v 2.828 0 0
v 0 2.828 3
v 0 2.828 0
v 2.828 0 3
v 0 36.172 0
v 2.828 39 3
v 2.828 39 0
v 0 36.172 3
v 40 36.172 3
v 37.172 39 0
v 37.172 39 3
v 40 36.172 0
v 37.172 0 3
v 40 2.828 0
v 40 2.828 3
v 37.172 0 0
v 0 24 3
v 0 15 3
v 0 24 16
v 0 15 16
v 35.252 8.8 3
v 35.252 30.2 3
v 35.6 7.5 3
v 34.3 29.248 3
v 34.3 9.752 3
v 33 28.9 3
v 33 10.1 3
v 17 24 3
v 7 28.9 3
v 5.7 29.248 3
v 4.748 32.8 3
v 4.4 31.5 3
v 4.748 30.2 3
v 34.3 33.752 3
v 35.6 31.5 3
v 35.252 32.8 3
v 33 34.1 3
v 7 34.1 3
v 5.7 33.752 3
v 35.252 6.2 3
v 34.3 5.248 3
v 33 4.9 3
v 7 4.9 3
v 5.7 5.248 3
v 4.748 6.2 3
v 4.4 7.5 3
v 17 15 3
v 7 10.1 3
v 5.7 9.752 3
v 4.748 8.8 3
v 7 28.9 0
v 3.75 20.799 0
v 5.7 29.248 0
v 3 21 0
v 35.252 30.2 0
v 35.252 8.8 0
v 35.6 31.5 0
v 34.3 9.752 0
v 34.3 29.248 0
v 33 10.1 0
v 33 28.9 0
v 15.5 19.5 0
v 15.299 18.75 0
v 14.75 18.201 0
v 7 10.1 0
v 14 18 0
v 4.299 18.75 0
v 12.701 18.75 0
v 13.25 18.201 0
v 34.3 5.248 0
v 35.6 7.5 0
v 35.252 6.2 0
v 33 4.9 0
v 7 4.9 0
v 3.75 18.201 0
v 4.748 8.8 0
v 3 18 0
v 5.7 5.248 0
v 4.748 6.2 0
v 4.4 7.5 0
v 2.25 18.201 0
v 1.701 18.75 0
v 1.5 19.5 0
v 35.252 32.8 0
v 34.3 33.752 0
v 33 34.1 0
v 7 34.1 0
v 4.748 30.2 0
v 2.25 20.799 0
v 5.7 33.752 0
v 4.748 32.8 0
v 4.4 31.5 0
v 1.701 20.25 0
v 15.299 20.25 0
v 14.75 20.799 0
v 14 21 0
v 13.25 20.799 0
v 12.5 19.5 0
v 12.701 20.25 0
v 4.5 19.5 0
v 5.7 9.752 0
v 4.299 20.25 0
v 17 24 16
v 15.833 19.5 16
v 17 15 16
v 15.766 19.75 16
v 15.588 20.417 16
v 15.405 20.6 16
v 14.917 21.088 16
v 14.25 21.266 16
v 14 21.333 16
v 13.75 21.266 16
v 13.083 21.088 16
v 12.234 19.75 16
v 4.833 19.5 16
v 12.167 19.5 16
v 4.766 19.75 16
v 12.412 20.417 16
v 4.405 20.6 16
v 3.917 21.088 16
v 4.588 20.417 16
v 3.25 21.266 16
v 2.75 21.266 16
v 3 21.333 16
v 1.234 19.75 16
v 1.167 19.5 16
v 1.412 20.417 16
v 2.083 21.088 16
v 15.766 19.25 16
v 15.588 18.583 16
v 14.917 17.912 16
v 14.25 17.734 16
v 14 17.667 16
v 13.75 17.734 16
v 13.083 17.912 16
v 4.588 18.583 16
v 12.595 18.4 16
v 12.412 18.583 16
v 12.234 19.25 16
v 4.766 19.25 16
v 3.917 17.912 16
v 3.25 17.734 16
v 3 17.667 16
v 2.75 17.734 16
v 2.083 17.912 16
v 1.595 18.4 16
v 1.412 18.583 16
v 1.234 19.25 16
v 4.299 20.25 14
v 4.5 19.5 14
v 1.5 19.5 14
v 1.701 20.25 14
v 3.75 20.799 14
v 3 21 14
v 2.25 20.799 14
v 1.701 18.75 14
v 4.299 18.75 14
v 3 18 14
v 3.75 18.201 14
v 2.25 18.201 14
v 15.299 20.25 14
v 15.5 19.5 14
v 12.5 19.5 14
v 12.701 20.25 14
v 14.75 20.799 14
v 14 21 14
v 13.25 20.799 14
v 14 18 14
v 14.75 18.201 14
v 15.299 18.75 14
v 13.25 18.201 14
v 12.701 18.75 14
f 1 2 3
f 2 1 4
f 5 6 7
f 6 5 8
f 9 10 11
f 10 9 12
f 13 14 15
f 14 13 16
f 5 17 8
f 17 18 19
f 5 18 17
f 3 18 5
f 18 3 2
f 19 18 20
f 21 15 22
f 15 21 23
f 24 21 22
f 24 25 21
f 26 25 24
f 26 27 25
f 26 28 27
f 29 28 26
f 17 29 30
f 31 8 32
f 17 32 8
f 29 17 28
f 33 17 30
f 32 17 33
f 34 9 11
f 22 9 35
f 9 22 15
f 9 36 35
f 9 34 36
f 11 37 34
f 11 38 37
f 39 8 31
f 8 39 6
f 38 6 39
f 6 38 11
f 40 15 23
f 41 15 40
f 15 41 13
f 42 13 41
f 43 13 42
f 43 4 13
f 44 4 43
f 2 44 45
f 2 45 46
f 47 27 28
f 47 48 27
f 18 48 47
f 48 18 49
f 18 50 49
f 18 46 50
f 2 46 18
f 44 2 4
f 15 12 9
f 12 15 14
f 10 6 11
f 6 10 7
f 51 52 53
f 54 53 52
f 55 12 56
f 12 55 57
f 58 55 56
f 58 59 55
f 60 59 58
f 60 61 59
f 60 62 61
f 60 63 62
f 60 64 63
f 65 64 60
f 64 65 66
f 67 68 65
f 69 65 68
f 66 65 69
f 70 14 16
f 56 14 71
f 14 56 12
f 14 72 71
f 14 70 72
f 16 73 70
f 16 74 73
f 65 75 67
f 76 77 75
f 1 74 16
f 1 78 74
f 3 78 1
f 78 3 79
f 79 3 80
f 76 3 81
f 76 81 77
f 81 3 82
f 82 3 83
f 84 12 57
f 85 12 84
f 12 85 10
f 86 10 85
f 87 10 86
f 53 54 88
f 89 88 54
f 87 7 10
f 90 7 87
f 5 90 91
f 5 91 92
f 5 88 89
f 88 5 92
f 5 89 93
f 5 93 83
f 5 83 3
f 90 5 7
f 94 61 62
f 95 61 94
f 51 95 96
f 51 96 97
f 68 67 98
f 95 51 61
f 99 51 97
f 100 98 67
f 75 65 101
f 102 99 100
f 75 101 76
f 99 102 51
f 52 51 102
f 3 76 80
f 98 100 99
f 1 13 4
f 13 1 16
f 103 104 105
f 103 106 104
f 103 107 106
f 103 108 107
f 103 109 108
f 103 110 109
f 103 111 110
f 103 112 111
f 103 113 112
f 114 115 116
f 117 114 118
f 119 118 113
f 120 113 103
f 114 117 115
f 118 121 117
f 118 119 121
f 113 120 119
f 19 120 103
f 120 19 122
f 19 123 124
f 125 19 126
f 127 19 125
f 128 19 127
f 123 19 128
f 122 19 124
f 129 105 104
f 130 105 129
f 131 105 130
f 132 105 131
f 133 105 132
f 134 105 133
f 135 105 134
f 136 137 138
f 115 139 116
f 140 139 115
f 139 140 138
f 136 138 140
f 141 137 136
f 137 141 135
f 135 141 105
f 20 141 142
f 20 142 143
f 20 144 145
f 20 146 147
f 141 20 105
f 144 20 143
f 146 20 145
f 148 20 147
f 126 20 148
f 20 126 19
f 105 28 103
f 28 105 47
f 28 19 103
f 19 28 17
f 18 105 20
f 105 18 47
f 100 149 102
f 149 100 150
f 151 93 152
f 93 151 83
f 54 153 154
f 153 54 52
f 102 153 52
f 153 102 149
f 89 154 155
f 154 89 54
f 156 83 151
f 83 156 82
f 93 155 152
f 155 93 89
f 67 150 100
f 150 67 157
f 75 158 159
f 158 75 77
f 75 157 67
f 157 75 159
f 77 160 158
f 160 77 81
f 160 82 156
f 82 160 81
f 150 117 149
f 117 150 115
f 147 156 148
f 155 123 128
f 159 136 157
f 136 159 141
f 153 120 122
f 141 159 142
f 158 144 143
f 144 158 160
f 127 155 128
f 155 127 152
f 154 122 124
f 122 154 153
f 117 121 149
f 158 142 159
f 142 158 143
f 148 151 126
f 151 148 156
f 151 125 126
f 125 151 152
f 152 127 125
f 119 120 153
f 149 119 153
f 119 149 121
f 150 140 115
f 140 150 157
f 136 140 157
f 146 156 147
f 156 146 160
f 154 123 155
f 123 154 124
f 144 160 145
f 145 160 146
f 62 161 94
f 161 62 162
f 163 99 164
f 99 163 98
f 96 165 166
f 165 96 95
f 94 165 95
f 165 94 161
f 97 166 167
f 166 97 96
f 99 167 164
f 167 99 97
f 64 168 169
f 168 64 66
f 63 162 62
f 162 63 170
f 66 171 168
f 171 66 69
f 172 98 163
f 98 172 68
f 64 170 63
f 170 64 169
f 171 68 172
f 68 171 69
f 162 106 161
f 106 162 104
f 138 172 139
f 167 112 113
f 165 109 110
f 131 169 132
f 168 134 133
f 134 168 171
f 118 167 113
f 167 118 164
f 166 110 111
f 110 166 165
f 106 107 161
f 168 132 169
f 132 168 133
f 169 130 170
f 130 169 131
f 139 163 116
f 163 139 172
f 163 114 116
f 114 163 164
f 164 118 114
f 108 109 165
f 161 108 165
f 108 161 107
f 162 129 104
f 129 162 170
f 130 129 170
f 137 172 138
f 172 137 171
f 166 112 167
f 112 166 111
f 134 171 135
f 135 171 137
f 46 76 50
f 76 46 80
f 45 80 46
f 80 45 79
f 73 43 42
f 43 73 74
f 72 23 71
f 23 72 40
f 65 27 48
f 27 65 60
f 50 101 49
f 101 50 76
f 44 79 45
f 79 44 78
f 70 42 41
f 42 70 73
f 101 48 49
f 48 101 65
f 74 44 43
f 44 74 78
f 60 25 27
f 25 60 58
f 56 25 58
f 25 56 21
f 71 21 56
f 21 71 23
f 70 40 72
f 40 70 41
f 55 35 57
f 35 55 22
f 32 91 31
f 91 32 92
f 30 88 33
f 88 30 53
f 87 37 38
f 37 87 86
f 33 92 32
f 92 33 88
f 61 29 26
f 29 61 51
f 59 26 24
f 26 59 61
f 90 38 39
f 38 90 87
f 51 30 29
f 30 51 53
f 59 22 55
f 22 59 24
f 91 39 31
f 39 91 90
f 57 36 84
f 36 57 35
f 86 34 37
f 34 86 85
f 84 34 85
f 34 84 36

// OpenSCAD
// file: Cubo.scad
// -----------------
// module cubo
// GPL v2.0
// yvoz.lg@gmail.com
// -----------------


// exemples ----

cubo([10,10,5], [1,2,3,4,5,6,7,8,9,10,11,12], 1.5);

translate([15, 0, 0]){
	difference(){
		cubo([10,20,5], [2,3], 3);
		translate([5,10,-1]) cylinder(r=2, h=7, $fn=12);
	}
}

translate([-15, 0, 0]){
	difference(){
		cube([10,20,15]);
		translate([3,3,3]) cubo([10,20,50], [1,5], 3);
	}
}

// ------------

module cubo(dim, cro, a){

	diago = sqrt(pow(a,2)+pow(a,2));
	difference(){
		cube(dim);
		
		for(i=cro){
			//x
			if(i==1){
				translate([-1, 0, -diago/2])
				rotate([45, 0, 0])
				cube([dim.x+2, a, a]);
			}
			if(i==2){
				translate([-1, 0, dim.z-diago/2])
				rotate([45, 0, 0])
				cube([dim.x+2, a, a]);
			}
			if(i==3){
				translate([-1, dim.y, dim.z-diago/2])
				rotate([45, 0, 0])
				cube([dim.x+2, a, a]);
			}
			if(i==4){
				translate([-1, dim.y, -diago/2])
				rotate([45, 0, 0])
				cube([dim.x+2, a, a]);
			}
			//y
			if(i==5){
				translate([-diago/2, -1, 0])
				rotate([0, 45, 0])
				cube([a, dim.y+2, a]);
			}
			if(i==6){
				translate([dim.x-diago/2, -1, 0])
				rotate([0, 45, 0])
				cube([a, dim.y+2, a]);
			}
			if(i==7){
				translate([dim.x-diago/2, -1, dim.z])
				rotate([0, 45, 0])
				cube([a, dim.y+2, a]);
			}
			if(i==8){
				translate([-diago/2, -1, dim.z])
				rotate([0, 45, 0])
				cube([a, dim.y+2, a]);
			}
			//z
			if(i==9){
				translate([0, -diago/2, -1])
				rotate([0, 0, 45])
				cube([a, a, dim.z+2]);
			}
			if(i==10){
				translate([0, dim.y-diago/2, -1])
				rotate([0, 0, 45])
				cube([a, a, dim.z+2]);
			}
			if(i==11){
				translate([dim.x, dim.y-diago/2, -1])
				rotate([0, 0, 45])
				cube([a, a, dim.z+2]);
			}
			if(i==12){
				translate([dim.x, -diago/2, -1])
				rotate([0, 0, 45])
				cube([a, a, dim.z+2]);
			}
		}
	}
}
// main file
// Support_EndY.scad
// Tous droits réservés www.mon-fablab.fr - 2017
// Licence GPLv3 - usage NON COMMERCIAL uniquement
// Contributeurs : X. HINAULT, Y. LE GAL

$fn = 12;

pro = 20; // largeur du profil alu
lend = 17; // largeur base plot
proy = 15;

lz = 16; // 15-4; // decalage z // 16-4

ep = 3; // epaisseur

esptr = 11; // espace trous end stop

use<Cubo.scad>;
    
    difference(){
        union(){
            cubo([pro*2,proy+ep+3+ep+proy,ep], [9,10,11,12], 4);
            translate([0,proy,0]) cube([lend,ep+3+ep,lz]);
        }
        
        translate([lend/2-esptr/2,proy+ep+1.5,-1]) {
			cylinder(r=1.5, h=lz+2);
			translate([0,0,lz-1]) cylinder(r1=1.5, r2=2, h=3);
		}
        translate([lend/2+esptr/2,proy+ep+1.5,-1]) {
			cylinder(r=1.5, h=lz+2);
			translate([0,0,lz-1]) cylinder(r1=1.5, r2=2, h=3);
		}
        
        hull(){
            translate([7,proy/2,-1]) cylinder(r=2.6, h=ep+2);
            translate([pro*2-7,proy/2,-1]) cylinder(r=2.6, h=ep+2);
        }
        hull(){
            translate([7,proy+ep+3+ep+proy/2,-1]) cylinder(r=2.6, h=ep+2);
            translate([pro*2-7,proy+ep+3+ep+proy/2,-1]) cylinder(r=2.6, h=ep+2);
        }
    }
        
    

/*
    translate([0,pro,lz]) difference(){
        cube([pro,pro/3*2,ep]);
        hull(){
            translate([pro/2+esptr/2,ep*2.3,-1]) cylinder(r=1.6, h=ep+2);
            translate([pro/2+esptr/2,pro*0.55,-1]) cylinder(r=1.6, h=ep+2);
        }
        hull(){
            translate([pro/2-esptr/2,ep*2.3,-1]) cylinder(r=1.6, h=ep+2);
            translate([pro/2-esptr/2,pro*0.55,-1]) cylinder(r=1.6, h=ep+2);
        }
    }
    */
